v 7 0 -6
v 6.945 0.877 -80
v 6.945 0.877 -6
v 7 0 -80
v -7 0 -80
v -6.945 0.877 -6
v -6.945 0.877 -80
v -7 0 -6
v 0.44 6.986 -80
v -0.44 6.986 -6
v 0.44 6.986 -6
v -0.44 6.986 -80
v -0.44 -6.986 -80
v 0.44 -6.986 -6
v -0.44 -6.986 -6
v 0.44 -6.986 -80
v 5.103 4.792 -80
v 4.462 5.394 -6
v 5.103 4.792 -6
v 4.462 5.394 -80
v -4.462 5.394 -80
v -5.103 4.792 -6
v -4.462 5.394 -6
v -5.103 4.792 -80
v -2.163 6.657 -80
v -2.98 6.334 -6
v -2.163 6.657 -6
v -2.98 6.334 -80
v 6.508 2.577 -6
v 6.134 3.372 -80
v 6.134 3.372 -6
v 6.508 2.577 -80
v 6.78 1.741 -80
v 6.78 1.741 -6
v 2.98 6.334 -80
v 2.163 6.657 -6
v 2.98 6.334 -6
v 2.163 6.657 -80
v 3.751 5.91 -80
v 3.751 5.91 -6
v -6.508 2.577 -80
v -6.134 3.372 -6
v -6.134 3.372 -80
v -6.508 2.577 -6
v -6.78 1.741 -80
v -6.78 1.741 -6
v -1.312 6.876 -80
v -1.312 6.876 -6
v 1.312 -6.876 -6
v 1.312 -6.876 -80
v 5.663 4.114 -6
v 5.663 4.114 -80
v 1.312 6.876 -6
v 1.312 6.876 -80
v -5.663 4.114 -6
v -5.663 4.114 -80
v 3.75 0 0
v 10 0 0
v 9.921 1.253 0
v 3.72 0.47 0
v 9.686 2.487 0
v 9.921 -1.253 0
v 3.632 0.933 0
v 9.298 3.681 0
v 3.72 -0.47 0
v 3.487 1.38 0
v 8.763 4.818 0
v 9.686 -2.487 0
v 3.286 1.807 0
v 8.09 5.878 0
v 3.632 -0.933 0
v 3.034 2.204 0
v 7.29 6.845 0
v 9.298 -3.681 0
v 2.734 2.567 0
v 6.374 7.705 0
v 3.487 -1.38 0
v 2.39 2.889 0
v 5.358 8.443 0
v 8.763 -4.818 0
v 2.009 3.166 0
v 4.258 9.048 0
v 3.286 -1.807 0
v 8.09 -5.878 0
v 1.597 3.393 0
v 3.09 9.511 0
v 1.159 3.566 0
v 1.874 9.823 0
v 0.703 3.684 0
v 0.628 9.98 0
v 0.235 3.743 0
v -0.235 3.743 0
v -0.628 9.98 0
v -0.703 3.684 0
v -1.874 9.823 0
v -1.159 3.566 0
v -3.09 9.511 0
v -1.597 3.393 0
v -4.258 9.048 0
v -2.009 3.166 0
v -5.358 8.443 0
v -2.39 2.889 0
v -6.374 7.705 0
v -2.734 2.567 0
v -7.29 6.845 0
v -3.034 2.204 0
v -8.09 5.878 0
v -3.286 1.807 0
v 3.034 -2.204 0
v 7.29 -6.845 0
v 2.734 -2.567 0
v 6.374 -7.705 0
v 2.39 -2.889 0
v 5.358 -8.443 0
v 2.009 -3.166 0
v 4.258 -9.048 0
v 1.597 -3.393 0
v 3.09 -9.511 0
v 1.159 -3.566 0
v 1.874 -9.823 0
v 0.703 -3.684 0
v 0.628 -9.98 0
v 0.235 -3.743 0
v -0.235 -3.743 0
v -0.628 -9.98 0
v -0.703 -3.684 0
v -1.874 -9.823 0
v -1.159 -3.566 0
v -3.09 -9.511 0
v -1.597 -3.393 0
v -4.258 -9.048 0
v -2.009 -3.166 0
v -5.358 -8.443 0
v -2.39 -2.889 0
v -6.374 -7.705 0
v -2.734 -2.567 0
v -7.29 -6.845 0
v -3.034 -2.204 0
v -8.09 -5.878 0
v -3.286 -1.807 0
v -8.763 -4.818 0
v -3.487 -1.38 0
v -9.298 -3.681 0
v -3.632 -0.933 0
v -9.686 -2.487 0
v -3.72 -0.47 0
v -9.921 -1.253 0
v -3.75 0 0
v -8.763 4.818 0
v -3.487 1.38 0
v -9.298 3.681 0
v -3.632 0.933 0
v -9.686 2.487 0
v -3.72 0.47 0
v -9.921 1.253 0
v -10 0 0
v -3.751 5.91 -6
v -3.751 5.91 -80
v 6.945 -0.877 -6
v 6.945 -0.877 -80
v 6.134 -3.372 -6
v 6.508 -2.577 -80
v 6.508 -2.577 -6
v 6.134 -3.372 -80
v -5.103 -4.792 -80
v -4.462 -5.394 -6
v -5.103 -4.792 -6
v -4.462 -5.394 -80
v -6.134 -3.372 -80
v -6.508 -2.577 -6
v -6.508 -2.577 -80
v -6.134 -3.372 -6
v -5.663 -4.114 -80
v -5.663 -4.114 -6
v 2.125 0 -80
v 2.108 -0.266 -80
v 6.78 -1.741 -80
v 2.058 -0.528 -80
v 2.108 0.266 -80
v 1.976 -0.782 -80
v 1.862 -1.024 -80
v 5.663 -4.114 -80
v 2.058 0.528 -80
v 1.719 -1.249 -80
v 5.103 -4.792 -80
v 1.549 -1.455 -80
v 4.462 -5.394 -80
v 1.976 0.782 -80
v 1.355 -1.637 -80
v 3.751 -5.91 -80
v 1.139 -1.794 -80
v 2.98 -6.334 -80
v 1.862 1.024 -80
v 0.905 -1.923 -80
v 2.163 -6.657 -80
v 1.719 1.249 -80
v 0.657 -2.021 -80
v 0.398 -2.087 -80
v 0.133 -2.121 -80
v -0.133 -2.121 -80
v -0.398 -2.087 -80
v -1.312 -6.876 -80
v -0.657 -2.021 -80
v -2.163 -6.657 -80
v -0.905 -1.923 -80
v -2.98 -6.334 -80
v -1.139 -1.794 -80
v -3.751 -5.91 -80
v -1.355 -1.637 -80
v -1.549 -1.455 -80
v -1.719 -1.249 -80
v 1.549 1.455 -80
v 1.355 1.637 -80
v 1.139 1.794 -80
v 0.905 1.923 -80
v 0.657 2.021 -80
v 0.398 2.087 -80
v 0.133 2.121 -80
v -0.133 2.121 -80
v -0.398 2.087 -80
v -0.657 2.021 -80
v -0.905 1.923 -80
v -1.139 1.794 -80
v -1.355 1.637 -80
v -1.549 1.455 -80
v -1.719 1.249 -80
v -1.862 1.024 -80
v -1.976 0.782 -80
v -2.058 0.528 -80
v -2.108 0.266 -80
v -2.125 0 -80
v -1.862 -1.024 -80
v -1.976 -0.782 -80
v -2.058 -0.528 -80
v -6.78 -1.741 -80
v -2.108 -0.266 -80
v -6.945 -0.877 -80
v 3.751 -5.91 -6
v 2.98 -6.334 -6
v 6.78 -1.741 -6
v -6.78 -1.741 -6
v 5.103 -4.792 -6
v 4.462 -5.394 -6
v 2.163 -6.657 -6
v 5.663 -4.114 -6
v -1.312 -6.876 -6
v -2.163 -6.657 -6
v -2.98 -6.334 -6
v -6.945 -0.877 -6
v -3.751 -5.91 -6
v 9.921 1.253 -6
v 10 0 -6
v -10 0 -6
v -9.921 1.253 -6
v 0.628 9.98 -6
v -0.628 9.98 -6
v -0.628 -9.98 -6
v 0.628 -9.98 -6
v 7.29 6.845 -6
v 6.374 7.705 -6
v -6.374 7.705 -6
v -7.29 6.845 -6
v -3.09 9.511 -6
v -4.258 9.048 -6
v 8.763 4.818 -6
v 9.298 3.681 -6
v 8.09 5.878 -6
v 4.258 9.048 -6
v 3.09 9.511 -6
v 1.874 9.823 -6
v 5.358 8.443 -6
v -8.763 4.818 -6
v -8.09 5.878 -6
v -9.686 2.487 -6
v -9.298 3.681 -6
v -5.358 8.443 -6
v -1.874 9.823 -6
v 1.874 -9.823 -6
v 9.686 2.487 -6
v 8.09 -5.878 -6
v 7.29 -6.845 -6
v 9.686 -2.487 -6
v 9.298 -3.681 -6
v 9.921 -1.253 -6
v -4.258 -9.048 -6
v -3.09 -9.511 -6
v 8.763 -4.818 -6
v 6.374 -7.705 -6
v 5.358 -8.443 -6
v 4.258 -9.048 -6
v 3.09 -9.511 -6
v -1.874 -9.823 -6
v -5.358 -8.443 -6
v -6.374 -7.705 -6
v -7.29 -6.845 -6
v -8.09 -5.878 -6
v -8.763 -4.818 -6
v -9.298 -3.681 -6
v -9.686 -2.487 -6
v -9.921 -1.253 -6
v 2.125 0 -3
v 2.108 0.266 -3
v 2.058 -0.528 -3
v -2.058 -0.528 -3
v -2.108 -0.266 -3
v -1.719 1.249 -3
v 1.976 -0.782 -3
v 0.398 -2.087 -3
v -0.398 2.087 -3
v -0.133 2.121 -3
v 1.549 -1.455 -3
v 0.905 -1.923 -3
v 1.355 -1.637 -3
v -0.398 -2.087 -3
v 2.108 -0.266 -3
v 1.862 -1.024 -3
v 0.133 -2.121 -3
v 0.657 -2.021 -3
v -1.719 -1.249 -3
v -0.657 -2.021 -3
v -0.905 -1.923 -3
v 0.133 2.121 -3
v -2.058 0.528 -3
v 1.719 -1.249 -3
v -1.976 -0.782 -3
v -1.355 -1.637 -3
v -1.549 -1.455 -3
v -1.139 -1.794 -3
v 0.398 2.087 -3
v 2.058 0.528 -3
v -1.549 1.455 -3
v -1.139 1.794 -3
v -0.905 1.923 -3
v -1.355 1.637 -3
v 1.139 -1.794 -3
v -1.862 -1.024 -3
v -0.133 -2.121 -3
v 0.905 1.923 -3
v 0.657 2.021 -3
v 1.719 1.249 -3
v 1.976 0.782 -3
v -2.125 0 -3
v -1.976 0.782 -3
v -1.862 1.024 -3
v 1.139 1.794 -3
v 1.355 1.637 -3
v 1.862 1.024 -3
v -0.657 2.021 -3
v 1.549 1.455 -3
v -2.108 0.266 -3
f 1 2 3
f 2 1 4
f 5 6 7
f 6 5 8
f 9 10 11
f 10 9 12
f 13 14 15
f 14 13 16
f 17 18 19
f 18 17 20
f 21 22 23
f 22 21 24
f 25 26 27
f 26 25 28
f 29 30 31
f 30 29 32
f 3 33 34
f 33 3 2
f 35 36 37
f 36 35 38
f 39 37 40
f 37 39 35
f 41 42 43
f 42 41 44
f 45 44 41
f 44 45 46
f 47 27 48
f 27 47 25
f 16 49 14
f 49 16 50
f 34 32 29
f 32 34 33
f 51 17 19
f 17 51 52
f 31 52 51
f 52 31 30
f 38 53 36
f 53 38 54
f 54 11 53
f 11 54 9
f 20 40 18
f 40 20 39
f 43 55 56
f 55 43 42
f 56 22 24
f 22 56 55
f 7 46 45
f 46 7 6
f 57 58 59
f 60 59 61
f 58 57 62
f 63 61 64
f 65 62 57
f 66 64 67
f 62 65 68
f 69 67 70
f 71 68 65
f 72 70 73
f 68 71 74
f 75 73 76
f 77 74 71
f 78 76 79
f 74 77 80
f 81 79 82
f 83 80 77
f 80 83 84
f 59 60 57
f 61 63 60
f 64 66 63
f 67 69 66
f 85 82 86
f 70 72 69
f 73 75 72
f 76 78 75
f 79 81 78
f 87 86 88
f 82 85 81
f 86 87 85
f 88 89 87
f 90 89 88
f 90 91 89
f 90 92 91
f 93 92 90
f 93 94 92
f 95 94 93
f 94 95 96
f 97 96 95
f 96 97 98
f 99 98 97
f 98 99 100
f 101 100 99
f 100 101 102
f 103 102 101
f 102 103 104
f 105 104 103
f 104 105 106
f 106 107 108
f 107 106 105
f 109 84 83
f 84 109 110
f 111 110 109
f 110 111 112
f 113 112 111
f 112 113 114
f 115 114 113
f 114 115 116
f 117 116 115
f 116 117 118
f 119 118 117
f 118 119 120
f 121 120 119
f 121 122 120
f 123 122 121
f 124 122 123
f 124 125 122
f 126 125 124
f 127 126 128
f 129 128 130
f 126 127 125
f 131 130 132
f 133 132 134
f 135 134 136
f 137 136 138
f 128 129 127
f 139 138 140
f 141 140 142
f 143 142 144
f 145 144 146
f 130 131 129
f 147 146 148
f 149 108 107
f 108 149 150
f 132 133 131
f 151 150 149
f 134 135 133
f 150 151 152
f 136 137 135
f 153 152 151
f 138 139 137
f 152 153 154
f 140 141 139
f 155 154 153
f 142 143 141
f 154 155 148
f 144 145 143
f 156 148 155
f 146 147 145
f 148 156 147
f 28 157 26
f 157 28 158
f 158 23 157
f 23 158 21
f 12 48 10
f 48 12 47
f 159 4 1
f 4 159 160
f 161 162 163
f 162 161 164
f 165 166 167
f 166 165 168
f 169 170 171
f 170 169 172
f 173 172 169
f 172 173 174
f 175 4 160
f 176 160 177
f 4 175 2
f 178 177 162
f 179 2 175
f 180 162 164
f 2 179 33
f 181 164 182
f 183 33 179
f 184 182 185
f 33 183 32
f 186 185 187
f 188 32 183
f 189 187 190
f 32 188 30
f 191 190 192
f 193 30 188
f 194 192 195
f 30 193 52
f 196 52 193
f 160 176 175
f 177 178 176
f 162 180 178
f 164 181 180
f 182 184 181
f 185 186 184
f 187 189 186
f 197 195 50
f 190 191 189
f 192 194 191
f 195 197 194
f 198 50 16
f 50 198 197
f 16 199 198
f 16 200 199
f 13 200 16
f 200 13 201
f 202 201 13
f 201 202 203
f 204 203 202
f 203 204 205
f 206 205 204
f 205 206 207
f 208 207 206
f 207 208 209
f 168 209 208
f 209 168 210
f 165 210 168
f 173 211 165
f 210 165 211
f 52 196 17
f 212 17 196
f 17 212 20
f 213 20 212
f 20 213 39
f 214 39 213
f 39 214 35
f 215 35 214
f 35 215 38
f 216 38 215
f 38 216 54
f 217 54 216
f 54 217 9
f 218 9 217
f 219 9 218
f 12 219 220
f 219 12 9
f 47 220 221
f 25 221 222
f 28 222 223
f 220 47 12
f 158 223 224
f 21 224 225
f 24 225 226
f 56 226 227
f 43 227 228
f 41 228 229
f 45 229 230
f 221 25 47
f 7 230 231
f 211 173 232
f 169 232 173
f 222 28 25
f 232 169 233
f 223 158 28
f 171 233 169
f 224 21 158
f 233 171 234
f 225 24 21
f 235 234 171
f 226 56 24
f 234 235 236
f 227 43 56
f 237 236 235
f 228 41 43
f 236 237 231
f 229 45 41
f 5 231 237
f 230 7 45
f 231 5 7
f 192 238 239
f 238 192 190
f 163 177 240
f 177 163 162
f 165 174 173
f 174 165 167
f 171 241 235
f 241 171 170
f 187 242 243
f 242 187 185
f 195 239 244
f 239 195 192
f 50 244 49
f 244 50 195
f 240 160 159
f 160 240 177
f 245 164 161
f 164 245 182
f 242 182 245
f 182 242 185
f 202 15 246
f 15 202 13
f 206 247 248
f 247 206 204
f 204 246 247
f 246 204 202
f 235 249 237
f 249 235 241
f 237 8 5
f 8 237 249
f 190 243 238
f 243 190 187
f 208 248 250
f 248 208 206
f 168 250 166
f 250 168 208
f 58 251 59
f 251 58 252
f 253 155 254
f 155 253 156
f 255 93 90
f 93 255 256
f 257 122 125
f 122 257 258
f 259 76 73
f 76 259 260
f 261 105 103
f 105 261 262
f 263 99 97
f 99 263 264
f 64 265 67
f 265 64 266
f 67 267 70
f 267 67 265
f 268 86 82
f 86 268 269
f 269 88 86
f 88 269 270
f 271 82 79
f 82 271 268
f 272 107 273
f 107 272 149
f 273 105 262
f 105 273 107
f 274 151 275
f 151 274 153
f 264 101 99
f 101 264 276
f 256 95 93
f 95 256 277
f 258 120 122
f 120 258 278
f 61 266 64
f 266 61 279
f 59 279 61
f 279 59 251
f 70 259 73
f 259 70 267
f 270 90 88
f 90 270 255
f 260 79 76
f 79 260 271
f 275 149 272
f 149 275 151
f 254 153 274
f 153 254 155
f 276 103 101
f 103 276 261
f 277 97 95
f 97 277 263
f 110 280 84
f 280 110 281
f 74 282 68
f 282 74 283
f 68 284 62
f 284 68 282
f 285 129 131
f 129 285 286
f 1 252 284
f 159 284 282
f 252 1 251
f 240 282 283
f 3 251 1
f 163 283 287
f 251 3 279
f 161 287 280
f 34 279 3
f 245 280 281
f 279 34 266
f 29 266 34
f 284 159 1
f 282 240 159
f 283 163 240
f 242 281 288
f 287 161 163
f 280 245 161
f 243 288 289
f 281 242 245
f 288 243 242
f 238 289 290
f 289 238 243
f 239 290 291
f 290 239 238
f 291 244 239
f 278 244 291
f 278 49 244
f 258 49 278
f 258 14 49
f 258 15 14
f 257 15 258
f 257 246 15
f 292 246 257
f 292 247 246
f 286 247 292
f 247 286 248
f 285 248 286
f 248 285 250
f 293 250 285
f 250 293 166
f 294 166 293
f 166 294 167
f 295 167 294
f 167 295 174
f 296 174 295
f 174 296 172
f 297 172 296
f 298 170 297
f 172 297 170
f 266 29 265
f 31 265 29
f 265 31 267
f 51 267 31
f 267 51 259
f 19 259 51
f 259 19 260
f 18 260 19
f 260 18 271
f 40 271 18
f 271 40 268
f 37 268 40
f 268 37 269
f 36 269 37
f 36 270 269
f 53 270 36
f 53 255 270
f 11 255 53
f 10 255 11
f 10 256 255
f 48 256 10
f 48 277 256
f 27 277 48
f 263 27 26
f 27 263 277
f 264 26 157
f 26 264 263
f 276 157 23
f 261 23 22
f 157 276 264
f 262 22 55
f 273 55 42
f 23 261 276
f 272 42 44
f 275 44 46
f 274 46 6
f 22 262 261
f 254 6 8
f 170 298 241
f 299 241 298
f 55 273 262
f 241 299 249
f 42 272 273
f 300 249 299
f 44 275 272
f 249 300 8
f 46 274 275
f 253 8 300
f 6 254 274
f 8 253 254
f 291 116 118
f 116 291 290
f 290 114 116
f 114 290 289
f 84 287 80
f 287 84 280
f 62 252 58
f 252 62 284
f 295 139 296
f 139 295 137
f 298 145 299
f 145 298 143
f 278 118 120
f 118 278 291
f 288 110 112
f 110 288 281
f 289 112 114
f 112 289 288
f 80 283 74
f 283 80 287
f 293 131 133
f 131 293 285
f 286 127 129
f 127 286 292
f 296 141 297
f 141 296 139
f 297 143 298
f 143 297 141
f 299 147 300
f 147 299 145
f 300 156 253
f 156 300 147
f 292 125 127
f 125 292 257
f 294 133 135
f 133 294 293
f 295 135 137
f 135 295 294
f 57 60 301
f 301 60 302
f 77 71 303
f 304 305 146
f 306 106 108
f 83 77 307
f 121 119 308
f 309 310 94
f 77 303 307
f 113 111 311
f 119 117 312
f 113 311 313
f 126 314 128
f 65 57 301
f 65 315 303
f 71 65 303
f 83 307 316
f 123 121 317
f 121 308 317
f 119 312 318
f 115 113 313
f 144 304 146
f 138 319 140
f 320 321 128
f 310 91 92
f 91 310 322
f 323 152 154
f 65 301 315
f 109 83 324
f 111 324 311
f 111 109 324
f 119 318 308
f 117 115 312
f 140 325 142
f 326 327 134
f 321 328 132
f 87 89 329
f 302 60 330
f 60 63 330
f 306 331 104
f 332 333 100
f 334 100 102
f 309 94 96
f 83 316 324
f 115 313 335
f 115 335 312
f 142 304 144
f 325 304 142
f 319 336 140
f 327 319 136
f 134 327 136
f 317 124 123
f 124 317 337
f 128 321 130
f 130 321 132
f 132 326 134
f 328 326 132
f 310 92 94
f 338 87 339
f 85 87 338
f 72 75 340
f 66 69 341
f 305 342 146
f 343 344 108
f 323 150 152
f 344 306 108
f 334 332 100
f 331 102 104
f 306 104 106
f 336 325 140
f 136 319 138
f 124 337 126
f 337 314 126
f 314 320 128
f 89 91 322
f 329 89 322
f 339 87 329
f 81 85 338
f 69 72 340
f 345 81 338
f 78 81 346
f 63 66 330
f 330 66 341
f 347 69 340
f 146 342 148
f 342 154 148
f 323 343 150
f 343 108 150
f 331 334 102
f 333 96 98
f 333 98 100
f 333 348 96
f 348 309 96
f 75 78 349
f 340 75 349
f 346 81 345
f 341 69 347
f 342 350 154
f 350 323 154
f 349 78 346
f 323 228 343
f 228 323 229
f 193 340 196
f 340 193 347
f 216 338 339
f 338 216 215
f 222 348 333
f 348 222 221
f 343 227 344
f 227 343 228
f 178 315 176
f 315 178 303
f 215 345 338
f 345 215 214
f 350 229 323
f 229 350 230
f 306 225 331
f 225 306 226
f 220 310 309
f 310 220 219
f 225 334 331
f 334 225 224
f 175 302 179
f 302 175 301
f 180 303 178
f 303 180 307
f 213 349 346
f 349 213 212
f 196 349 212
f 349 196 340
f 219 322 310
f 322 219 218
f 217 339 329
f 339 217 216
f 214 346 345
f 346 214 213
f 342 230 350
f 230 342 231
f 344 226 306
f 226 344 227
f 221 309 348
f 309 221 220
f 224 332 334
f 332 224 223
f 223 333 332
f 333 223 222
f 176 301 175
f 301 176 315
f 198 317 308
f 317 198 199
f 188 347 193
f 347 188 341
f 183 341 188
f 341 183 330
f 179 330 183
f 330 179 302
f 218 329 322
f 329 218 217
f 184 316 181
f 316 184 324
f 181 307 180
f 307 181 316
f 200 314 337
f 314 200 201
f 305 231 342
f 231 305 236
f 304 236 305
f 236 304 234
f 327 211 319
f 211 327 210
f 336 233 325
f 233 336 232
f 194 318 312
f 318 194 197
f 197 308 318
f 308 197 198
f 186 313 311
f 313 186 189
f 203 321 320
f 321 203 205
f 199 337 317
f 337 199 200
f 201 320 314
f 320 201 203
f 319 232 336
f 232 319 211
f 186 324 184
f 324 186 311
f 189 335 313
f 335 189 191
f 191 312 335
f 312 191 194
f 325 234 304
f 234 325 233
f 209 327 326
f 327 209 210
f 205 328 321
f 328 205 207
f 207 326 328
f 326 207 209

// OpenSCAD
$fn = 50;


difference() {
	union() {
		translate(v = [0, 0, -80.0000000000]) {
			cylinder(h = 80, r = 7.0000000000);
		}
		translate(v = [0, 0, -6.0000000000]) {
			cylinder(h = 6, r = 10.0000000000);
		}
	}
	union() {
		translate(v = [0, 0, 0]) {
			rotate(a = [0, 0, 0]) {
				difference() {
					union() {
						#translate(v = [0, 0, -80.0000000000]) {
							cylinder(h = 80, r = 2.0000000000);
						}
						#translate(v = [0, 0, -3]) {
							cylinder(h = 3, r = 7.0000000000, r1 = 2.1250000000, r2 = 3.7500000000);
						}
						#translate(v = [0, 0, -80.0000000000]) {
							cylinder(h = 80, r = 2.1250000000);
						}
						#translate(v = [0, 0, -80.0000000000]) {
							cylinder(h = 80, r = 2.0000000000);
						}
					}
					union();
				}
			}
		}
	}
}
